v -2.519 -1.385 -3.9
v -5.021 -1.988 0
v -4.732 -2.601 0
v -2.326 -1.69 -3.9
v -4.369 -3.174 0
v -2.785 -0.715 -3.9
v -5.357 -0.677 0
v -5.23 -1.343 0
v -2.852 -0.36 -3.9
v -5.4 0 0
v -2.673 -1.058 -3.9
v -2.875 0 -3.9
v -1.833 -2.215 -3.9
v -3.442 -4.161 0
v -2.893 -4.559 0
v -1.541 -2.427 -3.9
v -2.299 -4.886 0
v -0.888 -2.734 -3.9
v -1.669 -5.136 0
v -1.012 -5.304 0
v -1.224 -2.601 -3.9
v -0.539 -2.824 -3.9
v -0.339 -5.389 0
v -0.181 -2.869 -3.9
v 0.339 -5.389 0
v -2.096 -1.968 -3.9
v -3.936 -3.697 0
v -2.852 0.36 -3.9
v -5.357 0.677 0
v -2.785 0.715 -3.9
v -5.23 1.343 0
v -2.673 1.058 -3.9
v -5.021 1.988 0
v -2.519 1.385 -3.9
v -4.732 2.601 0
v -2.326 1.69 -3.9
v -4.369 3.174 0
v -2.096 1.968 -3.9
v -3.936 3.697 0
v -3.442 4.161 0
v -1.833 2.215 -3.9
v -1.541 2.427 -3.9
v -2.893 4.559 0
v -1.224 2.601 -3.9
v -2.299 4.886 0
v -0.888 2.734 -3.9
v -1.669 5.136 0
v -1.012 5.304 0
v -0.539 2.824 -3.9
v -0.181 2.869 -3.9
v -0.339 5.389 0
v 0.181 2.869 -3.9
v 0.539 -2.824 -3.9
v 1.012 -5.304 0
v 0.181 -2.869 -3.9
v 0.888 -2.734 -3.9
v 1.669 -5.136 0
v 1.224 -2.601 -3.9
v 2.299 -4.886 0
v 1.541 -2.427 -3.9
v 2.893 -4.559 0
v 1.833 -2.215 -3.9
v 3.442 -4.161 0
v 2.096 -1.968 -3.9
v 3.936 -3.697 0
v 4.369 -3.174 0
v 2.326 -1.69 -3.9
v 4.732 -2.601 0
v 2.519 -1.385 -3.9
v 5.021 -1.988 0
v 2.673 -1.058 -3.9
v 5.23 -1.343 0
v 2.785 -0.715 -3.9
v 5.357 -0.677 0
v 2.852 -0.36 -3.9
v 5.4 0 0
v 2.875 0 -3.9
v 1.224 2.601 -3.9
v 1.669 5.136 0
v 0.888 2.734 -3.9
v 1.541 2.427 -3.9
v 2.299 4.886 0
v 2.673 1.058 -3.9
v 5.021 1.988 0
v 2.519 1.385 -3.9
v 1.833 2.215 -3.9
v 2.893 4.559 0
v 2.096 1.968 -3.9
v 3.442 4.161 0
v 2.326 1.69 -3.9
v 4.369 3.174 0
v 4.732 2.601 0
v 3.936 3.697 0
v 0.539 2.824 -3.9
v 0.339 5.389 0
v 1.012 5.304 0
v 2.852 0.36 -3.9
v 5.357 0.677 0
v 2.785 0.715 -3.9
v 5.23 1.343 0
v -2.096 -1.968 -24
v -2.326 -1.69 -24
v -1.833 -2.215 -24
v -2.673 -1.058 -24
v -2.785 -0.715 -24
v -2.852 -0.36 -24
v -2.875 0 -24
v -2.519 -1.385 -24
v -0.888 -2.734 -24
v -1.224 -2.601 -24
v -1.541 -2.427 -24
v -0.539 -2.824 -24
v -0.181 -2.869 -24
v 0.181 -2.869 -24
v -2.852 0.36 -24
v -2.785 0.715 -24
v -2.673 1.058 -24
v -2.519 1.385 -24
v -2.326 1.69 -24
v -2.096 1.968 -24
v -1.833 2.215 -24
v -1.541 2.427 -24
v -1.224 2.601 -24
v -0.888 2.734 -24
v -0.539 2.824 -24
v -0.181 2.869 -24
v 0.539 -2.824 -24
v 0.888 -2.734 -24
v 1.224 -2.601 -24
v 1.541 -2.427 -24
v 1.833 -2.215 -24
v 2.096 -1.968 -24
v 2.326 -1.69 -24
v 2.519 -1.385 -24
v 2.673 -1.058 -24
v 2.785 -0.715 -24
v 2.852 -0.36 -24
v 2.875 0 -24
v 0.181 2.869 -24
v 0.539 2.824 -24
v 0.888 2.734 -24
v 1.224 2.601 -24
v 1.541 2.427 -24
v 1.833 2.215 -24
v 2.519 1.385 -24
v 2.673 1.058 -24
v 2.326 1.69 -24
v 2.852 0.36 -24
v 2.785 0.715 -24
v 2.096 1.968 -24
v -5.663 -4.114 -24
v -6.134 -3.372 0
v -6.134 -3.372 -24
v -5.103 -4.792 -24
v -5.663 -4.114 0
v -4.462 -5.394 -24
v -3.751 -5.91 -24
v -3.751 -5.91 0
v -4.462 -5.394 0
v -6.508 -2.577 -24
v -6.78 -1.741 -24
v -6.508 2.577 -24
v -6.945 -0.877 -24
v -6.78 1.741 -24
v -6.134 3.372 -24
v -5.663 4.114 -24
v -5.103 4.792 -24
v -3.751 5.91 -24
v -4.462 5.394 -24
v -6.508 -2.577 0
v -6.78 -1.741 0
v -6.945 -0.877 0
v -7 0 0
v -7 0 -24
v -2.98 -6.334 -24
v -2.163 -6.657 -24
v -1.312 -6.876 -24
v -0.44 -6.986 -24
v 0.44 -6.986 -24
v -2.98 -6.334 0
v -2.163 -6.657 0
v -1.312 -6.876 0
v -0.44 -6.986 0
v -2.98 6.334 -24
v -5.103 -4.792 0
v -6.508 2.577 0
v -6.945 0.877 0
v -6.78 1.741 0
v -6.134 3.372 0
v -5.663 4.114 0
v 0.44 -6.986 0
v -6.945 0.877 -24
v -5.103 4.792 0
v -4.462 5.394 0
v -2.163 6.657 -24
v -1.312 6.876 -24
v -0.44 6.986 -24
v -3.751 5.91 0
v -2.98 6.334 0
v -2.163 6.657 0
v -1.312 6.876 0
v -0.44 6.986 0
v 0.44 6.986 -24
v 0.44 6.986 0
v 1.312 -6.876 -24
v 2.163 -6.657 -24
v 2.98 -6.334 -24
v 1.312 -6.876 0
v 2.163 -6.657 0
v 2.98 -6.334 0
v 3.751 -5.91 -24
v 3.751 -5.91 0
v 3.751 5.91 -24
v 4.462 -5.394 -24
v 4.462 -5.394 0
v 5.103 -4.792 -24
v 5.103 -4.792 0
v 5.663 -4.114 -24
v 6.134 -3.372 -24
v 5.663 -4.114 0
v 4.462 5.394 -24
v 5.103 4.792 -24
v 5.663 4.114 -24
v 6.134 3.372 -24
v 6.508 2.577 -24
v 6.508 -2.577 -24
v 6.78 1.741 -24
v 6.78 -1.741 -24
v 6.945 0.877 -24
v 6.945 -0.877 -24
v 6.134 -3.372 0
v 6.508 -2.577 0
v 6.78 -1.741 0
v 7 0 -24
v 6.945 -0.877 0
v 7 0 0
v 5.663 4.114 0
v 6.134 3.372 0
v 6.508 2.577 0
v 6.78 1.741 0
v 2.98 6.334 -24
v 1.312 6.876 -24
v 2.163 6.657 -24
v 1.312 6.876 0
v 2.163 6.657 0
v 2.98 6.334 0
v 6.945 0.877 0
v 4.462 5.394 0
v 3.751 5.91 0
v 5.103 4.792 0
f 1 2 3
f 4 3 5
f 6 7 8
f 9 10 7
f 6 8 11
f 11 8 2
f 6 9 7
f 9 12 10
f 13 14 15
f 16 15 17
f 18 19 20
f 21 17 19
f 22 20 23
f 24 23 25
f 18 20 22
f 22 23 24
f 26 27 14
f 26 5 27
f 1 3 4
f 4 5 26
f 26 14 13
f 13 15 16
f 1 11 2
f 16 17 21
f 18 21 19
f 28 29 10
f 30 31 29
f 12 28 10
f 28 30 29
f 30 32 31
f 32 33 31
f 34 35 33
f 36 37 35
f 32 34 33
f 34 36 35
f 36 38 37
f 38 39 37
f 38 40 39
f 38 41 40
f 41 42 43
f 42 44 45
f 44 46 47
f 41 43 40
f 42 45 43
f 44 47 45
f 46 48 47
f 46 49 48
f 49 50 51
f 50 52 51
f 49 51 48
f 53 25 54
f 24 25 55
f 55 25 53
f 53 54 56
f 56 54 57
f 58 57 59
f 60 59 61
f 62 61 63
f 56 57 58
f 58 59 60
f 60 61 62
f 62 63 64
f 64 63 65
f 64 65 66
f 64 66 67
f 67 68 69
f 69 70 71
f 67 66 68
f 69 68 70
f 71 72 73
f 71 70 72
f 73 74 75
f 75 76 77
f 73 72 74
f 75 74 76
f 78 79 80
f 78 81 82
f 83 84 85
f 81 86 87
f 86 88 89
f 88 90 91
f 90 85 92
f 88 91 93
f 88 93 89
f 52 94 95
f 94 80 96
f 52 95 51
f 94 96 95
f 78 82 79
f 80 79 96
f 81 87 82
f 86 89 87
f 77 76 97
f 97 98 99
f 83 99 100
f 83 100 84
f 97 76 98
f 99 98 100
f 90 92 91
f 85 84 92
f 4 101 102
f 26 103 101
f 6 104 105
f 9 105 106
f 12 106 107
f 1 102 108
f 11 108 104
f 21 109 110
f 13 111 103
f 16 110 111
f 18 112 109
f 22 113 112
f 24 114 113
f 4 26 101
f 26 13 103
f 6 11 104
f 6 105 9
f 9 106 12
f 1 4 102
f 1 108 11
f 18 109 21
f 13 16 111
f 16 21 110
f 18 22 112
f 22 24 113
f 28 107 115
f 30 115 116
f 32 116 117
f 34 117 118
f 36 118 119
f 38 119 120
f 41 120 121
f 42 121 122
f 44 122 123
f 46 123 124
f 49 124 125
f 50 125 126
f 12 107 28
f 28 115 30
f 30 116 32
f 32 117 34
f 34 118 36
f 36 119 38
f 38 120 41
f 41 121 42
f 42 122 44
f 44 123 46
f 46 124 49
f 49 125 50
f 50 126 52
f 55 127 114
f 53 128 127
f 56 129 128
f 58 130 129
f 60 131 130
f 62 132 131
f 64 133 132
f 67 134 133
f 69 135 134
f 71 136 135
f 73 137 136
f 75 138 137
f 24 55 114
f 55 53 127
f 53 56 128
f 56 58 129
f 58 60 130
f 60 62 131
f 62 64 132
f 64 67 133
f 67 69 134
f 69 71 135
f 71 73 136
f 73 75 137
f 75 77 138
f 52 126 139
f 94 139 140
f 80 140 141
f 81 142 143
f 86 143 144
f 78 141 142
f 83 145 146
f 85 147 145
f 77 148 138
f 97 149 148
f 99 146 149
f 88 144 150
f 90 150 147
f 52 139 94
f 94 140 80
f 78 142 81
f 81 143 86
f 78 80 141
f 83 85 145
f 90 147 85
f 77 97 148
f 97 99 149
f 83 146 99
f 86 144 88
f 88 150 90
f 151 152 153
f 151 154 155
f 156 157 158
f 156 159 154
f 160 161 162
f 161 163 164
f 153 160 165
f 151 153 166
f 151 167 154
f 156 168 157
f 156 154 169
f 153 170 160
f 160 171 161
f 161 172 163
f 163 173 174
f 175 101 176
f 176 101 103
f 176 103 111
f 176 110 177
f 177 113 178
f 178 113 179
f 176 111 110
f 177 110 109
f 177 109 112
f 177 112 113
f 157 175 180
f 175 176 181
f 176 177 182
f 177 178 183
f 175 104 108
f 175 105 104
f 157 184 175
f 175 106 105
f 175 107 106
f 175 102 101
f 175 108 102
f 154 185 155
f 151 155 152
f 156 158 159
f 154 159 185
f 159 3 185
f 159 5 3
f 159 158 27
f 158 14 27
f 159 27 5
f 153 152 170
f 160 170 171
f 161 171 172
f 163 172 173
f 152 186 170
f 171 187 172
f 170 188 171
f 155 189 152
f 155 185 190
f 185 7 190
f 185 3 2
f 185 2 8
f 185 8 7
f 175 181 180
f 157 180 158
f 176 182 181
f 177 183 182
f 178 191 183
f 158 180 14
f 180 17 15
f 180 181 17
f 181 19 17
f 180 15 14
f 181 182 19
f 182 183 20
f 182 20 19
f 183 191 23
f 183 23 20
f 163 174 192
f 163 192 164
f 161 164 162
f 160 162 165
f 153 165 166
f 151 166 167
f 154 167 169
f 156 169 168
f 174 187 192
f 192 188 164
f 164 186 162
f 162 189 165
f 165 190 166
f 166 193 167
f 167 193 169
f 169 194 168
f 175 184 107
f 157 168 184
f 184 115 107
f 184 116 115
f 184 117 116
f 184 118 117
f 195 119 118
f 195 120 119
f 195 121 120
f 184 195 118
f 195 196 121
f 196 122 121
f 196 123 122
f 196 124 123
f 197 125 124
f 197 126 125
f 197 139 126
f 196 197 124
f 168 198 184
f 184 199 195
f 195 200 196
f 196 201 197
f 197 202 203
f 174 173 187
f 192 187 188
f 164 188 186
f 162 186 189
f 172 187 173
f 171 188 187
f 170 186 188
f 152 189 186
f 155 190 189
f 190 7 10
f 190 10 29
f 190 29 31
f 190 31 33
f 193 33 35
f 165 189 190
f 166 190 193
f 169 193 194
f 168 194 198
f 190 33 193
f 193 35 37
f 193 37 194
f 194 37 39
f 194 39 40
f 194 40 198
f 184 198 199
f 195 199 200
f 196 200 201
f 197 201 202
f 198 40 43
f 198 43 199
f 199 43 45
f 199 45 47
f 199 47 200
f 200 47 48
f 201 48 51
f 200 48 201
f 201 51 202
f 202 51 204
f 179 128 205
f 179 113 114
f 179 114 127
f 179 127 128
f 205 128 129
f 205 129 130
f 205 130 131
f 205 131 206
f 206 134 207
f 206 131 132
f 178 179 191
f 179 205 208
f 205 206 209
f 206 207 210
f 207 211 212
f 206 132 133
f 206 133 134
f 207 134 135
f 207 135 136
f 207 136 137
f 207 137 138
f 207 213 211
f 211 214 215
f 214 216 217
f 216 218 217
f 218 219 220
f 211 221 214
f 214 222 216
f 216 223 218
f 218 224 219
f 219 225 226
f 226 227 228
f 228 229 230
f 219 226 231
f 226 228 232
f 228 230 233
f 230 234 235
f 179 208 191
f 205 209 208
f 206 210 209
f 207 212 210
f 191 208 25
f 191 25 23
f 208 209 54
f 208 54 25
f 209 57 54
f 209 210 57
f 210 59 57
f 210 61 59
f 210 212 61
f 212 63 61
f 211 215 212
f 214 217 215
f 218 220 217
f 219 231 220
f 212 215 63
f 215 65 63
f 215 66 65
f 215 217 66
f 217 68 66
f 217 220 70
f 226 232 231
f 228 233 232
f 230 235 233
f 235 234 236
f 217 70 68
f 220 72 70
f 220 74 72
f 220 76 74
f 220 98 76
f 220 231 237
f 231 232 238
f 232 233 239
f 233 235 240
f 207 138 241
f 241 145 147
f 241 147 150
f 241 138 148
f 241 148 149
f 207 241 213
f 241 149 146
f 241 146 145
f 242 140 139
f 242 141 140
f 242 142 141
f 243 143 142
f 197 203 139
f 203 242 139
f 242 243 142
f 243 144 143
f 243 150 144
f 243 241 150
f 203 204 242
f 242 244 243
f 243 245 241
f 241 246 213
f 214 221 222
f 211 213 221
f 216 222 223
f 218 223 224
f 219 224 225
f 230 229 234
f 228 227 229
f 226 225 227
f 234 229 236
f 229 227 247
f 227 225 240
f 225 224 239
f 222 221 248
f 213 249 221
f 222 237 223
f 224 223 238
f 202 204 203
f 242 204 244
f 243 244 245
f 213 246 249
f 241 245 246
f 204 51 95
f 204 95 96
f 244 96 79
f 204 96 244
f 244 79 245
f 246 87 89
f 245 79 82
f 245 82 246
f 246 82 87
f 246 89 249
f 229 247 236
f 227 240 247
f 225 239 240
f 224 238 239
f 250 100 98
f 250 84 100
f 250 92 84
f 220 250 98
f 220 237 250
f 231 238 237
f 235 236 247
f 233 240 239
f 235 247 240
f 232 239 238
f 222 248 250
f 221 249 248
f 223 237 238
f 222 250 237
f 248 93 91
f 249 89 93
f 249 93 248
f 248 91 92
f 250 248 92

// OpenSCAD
$fn = 50;


difference() {
	union() {
		translate(v = [0, 0, -24.0000000000]) {
			cylinder(h = 24, r = 7.0000000000);
		}
	}
	union() {
		translate(v = [0, 0, 0]) {
			rotate(a = [0, 0, 0]) {
				difference() {
					union() {
						translate(v = [0, 0, -27.0000000000]) {
							cylinder(h = 27, r = 2.6000000000);
						}
						translate(v = [0, 0, -3.9000000000]) {
							cylinder(h = 3.9000000000, r1 = 2.8750000000, r2 = 5.4000000000);
						}
						translate(v = [0, 0, -27.0000000000]) {
							cylinder(h = 27, r = 2.8750000000);
						}
						translate(v = [0, 0, -27.0000000000]) {
							cylinder(h = 27, r = 2.6000000000);
						}
					}
					union();
				}
			}
		}
	}
}
